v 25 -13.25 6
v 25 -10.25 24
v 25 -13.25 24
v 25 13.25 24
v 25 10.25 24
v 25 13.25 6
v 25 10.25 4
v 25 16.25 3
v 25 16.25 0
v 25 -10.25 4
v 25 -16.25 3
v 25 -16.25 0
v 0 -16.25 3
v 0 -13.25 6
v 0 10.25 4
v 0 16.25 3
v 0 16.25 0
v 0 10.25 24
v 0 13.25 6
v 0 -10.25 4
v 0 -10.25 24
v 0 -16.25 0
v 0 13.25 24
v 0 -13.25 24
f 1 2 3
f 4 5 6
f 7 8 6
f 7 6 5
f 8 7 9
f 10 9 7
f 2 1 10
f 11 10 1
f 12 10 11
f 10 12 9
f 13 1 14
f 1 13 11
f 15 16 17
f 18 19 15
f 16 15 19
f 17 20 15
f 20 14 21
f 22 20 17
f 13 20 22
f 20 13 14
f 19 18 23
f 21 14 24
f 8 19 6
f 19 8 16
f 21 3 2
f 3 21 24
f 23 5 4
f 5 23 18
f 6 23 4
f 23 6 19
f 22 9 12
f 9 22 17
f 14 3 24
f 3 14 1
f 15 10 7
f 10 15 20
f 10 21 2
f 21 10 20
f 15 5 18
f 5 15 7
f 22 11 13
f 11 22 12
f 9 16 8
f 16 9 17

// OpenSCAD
//Test Print for Aluminum Extrusion Slide Fit
AL_Wid = 20.5;        //Width of cut for 2020 Aluminum
AL_Wid2 = AL_Wid / 2;
Len = 25;               //Length of Test
Ht = 24;                //height of Test
Base_Ht = 4;            //Base Height
Weld_OD = 12;           //Outside Weld Diameter to make it Stiffer Slide Test
Weld_Rad = Weld_OD / 2;
module Welds()
{
    translate([0,-(AL_Wid2+3),0])
    rotate([0,90,0])
    cylinder(d=Weld_OD,h=Len,$fn=4);
    translate([0,(AL_Wid2+3),0])
    rotate([0,90,0])
    cylinder(d=Weld_OD,h=Len,$fn=4);
}
difference()
{
    union()
    {
        translate([0,-(AL_Wid2+3),0])
        cube([Len,AL_Wid+6,Ht]);
        Welds();
    }
    translate([-1,-AL_Wid2,Base_Ht])
    cube([Len+2,AL_Wid,Ht]);
    translate([0,0,-10])
    cylinder(d=100,h=10);
    translate([-1,-(AL_Wid2+(Weld_Rad)+10),-1])
    cube([Len+2,10,10]);
    translate([-1,(AL_Wid2+(Weld_Rad)),-1])
    cube([Len+2,10,10]);
}
